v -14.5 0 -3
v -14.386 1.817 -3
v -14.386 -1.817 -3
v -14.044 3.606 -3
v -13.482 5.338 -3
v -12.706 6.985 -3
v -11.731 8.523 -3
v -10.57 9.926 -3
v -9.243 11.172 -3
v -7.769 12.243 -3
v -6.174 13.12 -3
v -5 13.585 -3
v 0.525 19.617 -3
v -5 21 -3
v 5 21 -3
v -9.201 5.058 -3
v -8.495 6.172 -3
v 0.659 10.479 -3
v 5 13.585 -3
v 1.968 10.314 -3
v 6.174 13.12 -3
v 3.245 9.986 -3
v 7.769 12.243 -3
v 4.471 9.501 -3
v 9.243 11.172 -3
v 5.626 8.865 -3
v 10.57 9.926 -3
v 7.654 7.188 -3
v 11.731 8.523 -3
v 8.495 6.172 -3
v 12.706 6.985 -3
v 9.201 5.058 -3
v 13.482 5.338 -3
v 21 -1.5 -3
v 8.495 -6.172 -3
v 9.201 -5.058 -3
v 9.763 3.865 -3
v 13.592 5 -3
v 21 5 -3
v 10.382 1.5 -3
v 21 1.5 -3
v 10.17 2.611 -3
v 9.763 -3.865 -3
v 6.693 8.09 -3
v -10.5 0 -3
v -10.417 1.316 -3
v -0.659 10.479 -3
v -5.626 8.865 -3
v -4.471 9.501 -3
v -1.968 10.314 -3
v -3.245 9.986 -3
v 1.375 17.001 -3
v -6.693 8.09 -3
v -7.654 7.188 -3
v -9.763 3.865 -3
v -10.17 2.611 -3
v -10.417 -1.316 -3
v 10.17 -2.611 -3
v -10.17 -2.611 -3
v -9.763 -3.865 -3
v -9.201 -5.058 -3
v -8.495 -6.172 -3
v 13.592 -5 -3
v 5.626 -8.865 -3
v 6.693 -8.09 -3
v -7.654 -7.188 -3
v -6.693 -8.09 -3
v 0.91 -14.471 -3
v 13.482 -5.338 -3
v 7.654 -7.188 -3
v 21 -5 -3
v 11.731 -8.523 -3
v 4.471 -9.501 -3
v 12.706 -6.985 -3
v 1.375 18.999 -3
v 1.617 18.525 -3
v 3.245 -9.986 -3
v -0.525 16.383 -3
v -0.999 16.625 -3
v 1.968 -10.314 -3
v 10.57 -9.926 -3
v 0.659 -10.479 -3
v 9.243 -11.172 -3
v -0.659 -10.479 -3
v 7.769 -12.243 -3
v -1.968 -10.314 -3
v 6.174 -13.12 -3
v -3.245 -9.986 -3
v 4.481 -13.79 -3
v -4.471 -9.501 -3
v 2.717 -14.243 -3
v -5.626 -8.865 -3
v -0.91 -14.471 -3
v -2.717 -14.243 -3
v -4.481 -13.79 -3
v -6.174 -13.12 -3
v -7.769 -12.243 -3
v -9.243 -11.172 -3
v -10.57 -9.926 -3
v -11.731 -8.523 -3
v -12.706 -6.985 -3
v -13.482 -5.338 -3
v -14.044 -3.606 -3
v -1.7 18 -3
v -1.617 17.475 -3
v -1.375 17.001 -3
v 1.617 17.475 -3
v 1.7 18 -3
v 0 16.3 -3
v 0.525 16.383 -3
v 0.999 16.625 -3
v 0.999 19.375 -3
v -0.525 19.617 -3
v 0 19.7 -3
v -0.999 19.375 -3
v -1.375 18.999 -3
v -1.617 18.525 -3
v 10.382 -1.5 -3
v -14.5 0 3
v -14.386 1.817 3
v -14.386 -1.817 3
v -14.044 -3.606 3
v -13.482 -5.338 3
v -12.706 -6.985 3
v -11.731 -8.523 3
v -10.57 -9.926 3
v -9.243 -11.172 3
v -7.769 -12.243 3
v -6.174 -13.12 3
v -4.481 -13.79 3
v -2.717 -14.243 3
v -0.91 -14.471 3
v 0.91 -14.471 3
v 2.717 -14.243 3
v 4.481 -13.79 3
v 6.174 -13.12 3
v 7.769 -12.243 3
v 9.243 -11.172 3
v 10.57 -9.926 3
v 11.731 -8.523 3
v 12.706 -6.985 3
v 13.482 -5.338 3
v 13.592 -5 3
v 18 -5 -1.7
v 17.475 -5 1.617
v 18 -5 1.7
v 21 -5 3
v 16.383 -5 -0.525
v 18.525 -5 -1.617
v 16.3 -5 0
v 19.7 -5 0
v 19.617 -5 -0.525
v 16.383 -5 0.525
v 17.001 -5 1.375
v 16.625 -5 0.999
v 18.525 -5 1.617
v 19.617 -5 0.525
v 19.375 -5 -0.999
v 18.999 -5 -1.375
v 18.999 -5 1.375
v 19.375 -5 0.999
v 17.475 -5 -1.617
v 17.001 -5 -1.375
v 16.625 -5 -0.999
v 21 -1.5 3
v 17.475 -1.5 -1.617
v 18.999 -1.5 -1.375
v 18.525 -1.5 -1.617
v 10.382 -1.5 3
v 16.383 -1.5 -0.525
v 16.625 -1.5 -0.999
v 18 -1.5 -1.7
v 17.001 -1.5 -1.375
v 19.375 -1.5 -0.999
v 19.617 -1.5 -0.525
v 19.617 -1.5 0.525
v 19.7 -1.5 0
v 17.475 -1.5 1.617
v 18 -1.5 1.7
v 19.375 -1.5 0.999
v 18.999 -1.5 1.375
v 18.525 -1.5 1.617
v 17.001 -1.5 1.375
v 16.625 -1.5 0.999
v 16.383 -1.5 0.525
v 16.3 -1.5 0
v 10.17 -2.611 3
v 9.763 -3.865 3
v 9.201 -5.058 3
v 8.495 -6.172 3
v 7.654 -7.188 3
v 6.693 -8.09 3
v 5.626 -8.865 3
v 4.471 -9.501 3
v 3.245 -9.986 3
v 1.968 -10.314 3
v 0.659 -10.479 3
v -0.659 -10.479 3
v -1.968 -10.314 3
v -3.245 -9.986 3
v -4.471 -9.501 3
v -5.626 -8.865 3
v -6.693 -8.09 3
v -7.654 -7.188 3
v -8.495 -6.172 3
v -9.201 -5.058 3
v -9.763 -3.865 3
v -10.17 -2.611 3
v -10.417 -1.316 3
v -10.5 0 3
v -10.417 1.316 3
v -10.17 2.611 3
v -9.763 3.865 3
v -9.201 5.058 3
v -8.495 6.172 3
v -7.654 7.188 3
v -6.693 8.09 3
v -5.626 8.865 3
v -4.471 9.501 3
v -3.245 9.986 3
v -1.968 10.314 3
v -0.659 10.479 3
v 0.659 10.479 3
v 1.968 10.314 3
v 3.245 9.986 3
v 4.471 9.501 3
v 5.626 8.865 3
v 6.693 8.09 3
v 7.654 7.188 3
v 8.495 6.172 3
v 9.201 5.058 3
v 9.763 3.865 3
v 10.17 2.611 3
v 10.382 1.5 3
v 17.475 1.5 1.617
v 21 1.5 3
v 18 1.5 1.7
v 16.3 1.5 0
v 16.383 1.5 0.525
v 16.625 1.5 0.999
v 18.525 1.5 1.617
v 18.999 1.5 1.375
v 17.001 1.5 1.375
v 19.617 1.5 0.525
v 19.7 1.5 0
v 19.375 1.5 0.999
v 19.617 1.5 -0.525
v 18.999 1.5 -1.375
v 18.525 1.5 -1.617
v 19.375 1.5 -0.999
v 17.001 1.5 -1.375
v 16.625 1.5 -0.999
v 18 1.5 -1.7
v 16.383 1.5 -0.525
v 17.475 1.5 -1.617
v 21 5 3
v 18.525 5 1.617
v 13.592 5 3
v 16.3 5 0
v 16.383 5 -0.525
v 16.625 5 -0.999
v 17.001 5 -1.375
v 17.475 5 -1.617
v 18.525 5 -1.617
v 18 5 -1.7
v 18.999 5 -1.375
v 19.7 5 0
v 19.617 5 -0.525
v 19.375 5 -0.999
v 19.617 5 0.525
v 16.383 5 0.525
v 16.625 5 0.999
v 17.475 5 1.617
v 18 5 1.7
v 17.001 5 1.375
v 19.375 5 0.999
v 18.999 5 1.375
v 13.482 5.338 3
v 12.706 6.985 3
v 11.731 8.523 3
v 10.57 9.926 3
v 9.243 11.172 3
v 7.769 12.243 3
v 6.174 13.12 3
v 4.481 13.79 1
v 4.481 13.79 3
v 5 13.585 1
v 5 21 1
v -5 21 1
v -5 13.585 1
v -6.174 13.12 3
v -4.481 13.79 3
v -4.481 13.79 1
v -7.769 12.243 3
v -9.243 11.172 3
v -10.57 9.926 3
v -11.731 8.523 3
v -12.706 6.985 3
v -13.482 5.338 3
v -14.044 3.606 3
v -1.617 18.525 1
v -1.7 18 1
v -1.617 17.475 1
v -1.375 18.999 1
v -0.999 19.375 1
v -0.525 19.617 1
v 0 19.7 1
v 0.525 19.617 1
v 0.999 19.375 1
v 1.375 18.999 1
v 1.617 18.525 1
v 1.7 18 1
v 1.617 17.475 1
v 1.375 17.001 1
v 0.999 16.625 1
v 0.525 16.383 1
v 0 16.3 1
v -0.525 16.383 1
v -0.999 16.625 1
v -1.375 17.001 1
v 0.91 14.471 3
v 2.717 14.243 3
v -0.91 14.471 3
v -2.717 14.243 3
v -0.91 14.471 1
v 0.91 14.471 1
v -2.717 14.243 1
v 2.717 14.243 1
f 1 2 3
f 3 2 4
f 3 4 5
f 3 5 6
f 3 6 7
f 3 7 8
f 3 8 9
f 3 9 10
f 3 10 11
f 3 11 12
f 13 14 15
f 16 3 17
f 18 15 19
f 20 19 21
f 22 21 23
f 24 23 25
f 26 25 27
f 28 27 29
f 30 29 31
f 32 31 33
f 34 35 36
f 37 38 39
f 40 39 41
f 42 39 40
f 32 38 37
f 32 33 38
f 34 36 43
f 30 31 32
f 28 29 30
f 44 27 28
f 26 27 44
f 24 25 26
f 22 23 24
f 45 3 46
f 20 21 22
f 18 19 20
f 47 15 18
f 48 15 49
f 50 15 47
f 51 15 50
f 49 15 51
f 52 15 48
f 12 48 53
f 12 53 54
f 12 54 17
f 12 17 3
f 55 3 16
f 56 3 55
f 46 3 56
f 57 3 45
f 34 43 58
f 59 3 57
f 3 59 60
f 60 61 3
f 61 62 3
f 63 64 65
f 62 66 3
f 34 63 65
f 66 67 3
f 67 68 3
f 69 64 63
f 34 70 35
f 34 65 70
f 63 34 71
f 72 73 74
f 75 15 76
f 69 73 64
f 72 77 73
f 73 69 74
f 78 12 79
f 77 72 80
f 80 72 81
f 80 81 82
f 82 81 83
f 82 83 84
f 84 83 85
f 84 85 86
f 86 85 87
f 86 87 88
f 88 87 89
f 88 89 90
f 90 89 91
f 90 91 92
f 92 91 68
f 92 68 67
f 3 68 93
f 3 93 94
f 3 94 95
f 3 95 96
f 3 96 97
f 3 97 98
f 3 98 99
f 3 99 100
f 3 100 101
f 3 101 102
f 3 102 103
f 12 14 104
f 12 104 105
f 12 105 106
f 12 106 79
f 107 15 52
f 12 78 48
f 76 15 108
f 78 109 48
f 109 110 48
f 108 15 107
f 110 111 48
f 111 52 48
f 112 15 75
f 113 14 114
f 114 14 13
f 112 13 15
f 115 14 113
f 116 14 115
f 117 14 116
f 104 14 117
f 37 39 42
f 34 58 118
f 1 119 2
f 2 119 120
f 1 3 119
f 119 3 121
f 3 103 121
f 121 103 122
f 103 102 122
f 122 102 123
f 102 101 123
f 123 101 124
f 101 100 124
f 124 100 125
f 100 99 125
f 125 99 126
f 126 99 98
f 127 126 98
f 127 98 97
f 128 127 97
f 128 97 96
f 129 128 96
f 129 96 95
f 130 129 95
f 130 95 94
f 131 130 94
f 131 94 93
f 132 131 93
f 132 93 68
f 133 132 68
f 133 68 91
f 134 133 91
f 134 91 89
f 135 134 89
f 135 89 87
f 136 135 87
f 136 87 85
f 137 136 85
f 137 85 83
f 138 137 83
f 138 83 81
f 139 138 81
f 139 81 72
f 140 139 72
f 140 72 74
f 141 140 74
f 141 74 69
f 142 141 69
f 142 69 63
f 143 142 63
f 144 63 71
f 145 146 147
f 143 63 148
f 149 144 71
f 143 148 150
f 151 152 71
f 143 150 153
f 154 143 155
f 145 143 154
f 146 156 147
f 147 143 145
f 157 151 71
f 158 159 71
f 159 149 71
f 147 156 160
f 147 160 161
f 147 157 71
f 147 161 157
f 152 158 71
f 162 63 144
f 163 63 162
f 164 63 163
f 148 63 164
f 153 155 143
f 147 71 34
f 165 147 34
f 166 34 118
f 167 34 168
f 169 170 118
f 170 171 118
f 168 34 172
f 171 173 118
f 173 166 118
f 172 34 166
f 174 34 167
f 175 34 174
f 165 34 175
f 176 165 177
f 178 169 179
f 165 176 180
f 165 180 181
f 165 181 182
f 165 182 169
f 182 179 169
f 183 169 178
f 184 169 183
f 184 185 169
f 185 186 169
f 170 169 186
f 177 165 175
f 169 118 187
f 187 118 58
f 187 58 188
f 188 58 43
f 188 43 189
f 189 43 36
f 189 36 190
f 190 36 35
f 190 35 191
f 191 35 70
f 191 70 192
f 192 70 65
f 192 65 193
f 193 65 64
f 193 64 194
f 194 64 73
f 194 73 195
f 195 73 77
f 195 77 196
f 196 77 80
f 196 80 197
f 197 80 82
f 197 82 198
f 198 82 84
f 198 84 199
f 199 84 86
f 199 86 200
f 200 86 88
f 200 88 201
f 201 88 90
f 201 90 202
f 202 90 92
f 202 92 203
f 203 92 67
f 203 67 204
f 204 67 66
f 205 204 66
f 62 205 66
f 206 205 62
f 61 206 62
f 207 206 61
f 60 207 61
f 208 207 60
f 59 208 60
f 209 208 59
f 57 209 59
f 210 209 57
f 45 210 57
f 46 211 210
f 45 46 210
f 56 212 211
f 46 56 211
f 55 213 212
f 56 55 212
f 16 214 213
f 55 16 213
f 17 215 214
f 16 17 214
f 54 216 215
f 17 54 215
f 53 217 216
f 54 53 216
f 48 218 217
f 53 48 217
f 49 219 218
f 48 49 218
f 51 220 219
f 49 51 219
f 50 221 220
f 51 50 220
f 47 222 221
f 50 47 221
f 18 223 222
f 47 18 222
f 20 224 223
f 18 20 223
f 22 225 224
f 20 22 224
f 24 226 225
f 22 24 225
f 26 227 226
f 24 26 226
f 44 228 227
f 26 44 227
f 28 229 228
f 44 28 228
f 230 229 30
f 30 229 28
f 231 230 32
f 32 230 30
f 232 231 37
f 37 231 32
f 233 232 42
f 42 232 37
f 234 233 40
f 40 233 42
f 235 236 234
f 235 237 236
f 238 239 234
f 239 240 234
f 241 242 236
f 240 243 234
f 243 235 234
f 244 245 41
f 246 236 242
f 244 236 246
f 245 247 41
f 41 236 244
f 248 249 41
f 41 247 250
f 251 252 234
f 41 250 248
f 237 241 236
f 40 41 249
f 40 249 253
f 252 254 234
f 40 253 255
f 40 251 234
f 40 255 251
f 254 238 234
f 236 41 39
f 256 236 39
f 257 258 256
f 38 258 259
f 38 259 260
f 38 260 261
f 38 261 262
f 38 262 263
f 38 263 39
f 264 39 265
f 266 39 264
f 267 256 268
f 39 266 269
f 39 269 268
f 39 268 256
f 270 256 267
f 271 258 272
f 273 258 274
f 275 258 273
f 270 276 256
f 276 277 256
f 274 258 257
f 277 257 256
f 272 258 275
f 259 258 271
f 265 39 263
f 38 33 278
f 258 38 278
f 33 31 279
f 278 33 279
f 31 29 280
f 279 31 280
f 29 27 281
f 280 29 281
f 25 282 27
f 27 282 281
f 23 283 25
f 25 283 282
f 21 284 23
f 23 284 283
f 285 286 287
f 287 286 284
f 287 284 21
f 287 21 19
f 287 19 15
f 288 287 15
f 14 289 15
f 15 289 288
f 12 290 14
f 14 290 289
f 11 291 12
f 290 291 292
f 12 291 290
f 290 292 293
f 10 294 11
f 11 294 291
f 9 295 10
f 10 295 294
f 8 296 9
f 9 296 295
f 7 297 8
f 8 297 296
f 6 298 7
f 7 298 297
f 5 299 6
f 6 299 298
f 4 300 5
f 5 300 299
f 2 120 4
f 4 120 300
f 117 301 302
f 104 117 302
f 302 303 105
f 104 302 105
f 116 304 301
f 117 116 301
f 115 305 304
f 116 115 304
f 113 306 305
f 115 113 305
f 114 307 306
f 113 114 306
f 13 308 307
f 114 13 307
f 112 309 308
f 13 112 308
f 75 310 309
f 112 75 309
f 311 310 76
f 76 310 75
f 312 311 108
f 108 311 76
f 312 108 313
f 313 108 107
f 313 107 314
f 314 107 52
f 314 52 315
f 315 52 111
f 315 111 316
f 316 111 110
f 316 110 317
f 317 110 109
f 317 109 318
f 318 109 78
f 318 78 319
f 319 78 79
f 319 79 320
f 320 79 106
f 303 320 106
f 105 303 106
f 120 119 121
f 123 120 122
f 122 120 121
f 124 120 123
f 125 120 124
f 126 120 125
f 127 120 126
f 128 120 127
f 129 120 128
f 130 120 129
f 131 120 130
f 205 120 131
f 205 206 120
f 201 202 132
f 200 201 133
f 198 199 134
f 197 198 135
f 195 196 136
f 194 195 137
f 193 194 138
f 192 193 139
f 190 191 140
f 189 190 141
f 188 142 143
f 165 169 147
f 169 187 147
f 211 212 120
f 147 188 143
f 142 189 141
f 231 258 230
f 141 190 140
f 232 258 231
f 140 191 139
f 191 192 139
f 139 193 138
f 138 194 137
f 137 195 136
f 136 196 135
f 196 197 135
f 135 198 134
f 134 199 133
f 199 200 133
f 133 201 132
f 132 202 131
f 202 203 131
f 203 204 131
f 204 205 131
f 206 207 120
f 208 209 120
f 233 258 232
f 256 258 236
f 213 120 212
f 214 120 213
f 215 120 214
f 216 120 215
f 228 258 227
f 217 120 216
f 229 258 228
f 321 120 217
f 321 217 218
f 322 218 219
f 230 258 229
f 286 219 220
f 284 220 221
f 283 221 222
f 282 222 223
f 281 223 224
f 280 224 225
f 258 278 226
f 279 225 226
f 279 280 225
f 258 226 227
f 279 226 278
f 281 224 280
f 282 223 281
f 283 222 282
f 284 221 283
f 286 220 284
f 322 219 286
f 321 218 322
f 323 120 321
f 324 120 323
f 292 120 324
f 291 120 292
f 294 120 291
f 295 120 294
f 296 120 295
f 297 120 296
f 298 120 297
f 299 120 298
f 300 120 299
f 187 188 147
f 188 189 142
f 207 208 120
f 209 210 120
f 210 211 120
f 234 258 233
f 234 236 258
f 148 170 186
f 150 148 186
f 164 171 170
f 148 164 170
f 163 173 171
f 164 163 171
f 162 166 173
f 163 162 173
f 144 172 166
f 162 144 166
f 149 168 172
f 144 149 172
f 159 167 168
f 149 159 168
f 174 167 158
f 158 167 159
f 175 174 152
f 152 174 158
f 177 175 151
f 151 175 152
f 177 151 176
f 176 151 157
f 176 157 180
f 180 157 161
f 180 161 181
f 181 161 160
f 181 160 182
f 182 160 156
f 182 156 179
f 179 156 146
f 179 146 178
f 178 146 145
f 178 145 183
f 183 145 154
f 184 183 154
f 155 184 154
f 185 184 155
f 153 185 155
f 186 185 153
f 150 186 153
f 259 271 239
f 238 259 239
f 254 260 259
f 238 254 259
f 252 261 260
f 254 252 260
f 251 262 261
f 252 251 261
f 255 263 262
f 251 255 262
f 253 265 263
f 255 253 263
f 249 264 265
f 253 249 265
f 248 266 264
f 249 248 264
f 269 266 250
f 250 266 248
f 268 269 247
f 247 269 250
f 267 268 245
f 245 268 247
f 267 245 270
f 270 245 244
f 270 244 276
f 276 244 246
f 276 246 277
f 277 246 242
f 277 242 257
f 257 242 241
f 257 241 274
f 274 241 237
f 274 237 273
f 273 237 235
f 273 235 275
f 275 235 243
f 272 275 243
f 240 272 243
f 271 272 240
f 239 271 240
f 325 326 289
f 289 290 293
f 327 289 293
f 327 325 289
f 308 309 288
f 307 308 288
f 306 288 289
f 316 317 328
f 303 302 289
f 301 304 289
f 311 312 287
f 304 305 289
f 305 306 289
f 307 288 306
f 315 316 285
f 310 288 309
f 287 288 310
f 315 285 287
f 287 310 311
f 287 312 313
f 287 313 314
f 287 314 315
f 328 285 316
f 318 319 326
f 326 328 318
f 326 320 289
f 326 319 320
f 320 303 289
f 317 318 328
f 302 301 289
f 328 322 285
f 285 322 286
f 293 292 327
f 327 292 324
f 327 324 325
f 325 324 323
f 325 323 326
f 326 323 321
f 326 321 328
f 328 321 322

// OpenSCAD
/*
	Adrian
	31 Jan 2014

*/
difference()
{
	union()
	{
		difference()
		{
			cylinder(r=10.5+4,h=6,center=true,$fn=50);
			cylinder(r=10.5,h=10,center=true,$fn=50);
		}
		translate([11+5,0,0])
			cube([10,10,6],center=true);
		translate([0, 11+5, -1])
			cube([10,10,4],center=true);
	}
	translate([11+5,0,0])
		cube([20,3,8],center=true);
	translate([11+7,0,0])
		rotate([90,0,0])
			cylinder(r=1.7,h=15,center=true,$fn=20);
	translate([0, 11+7, 0])
			cylinder(r=1.7,h=15,center=true,$fn=20);
}
